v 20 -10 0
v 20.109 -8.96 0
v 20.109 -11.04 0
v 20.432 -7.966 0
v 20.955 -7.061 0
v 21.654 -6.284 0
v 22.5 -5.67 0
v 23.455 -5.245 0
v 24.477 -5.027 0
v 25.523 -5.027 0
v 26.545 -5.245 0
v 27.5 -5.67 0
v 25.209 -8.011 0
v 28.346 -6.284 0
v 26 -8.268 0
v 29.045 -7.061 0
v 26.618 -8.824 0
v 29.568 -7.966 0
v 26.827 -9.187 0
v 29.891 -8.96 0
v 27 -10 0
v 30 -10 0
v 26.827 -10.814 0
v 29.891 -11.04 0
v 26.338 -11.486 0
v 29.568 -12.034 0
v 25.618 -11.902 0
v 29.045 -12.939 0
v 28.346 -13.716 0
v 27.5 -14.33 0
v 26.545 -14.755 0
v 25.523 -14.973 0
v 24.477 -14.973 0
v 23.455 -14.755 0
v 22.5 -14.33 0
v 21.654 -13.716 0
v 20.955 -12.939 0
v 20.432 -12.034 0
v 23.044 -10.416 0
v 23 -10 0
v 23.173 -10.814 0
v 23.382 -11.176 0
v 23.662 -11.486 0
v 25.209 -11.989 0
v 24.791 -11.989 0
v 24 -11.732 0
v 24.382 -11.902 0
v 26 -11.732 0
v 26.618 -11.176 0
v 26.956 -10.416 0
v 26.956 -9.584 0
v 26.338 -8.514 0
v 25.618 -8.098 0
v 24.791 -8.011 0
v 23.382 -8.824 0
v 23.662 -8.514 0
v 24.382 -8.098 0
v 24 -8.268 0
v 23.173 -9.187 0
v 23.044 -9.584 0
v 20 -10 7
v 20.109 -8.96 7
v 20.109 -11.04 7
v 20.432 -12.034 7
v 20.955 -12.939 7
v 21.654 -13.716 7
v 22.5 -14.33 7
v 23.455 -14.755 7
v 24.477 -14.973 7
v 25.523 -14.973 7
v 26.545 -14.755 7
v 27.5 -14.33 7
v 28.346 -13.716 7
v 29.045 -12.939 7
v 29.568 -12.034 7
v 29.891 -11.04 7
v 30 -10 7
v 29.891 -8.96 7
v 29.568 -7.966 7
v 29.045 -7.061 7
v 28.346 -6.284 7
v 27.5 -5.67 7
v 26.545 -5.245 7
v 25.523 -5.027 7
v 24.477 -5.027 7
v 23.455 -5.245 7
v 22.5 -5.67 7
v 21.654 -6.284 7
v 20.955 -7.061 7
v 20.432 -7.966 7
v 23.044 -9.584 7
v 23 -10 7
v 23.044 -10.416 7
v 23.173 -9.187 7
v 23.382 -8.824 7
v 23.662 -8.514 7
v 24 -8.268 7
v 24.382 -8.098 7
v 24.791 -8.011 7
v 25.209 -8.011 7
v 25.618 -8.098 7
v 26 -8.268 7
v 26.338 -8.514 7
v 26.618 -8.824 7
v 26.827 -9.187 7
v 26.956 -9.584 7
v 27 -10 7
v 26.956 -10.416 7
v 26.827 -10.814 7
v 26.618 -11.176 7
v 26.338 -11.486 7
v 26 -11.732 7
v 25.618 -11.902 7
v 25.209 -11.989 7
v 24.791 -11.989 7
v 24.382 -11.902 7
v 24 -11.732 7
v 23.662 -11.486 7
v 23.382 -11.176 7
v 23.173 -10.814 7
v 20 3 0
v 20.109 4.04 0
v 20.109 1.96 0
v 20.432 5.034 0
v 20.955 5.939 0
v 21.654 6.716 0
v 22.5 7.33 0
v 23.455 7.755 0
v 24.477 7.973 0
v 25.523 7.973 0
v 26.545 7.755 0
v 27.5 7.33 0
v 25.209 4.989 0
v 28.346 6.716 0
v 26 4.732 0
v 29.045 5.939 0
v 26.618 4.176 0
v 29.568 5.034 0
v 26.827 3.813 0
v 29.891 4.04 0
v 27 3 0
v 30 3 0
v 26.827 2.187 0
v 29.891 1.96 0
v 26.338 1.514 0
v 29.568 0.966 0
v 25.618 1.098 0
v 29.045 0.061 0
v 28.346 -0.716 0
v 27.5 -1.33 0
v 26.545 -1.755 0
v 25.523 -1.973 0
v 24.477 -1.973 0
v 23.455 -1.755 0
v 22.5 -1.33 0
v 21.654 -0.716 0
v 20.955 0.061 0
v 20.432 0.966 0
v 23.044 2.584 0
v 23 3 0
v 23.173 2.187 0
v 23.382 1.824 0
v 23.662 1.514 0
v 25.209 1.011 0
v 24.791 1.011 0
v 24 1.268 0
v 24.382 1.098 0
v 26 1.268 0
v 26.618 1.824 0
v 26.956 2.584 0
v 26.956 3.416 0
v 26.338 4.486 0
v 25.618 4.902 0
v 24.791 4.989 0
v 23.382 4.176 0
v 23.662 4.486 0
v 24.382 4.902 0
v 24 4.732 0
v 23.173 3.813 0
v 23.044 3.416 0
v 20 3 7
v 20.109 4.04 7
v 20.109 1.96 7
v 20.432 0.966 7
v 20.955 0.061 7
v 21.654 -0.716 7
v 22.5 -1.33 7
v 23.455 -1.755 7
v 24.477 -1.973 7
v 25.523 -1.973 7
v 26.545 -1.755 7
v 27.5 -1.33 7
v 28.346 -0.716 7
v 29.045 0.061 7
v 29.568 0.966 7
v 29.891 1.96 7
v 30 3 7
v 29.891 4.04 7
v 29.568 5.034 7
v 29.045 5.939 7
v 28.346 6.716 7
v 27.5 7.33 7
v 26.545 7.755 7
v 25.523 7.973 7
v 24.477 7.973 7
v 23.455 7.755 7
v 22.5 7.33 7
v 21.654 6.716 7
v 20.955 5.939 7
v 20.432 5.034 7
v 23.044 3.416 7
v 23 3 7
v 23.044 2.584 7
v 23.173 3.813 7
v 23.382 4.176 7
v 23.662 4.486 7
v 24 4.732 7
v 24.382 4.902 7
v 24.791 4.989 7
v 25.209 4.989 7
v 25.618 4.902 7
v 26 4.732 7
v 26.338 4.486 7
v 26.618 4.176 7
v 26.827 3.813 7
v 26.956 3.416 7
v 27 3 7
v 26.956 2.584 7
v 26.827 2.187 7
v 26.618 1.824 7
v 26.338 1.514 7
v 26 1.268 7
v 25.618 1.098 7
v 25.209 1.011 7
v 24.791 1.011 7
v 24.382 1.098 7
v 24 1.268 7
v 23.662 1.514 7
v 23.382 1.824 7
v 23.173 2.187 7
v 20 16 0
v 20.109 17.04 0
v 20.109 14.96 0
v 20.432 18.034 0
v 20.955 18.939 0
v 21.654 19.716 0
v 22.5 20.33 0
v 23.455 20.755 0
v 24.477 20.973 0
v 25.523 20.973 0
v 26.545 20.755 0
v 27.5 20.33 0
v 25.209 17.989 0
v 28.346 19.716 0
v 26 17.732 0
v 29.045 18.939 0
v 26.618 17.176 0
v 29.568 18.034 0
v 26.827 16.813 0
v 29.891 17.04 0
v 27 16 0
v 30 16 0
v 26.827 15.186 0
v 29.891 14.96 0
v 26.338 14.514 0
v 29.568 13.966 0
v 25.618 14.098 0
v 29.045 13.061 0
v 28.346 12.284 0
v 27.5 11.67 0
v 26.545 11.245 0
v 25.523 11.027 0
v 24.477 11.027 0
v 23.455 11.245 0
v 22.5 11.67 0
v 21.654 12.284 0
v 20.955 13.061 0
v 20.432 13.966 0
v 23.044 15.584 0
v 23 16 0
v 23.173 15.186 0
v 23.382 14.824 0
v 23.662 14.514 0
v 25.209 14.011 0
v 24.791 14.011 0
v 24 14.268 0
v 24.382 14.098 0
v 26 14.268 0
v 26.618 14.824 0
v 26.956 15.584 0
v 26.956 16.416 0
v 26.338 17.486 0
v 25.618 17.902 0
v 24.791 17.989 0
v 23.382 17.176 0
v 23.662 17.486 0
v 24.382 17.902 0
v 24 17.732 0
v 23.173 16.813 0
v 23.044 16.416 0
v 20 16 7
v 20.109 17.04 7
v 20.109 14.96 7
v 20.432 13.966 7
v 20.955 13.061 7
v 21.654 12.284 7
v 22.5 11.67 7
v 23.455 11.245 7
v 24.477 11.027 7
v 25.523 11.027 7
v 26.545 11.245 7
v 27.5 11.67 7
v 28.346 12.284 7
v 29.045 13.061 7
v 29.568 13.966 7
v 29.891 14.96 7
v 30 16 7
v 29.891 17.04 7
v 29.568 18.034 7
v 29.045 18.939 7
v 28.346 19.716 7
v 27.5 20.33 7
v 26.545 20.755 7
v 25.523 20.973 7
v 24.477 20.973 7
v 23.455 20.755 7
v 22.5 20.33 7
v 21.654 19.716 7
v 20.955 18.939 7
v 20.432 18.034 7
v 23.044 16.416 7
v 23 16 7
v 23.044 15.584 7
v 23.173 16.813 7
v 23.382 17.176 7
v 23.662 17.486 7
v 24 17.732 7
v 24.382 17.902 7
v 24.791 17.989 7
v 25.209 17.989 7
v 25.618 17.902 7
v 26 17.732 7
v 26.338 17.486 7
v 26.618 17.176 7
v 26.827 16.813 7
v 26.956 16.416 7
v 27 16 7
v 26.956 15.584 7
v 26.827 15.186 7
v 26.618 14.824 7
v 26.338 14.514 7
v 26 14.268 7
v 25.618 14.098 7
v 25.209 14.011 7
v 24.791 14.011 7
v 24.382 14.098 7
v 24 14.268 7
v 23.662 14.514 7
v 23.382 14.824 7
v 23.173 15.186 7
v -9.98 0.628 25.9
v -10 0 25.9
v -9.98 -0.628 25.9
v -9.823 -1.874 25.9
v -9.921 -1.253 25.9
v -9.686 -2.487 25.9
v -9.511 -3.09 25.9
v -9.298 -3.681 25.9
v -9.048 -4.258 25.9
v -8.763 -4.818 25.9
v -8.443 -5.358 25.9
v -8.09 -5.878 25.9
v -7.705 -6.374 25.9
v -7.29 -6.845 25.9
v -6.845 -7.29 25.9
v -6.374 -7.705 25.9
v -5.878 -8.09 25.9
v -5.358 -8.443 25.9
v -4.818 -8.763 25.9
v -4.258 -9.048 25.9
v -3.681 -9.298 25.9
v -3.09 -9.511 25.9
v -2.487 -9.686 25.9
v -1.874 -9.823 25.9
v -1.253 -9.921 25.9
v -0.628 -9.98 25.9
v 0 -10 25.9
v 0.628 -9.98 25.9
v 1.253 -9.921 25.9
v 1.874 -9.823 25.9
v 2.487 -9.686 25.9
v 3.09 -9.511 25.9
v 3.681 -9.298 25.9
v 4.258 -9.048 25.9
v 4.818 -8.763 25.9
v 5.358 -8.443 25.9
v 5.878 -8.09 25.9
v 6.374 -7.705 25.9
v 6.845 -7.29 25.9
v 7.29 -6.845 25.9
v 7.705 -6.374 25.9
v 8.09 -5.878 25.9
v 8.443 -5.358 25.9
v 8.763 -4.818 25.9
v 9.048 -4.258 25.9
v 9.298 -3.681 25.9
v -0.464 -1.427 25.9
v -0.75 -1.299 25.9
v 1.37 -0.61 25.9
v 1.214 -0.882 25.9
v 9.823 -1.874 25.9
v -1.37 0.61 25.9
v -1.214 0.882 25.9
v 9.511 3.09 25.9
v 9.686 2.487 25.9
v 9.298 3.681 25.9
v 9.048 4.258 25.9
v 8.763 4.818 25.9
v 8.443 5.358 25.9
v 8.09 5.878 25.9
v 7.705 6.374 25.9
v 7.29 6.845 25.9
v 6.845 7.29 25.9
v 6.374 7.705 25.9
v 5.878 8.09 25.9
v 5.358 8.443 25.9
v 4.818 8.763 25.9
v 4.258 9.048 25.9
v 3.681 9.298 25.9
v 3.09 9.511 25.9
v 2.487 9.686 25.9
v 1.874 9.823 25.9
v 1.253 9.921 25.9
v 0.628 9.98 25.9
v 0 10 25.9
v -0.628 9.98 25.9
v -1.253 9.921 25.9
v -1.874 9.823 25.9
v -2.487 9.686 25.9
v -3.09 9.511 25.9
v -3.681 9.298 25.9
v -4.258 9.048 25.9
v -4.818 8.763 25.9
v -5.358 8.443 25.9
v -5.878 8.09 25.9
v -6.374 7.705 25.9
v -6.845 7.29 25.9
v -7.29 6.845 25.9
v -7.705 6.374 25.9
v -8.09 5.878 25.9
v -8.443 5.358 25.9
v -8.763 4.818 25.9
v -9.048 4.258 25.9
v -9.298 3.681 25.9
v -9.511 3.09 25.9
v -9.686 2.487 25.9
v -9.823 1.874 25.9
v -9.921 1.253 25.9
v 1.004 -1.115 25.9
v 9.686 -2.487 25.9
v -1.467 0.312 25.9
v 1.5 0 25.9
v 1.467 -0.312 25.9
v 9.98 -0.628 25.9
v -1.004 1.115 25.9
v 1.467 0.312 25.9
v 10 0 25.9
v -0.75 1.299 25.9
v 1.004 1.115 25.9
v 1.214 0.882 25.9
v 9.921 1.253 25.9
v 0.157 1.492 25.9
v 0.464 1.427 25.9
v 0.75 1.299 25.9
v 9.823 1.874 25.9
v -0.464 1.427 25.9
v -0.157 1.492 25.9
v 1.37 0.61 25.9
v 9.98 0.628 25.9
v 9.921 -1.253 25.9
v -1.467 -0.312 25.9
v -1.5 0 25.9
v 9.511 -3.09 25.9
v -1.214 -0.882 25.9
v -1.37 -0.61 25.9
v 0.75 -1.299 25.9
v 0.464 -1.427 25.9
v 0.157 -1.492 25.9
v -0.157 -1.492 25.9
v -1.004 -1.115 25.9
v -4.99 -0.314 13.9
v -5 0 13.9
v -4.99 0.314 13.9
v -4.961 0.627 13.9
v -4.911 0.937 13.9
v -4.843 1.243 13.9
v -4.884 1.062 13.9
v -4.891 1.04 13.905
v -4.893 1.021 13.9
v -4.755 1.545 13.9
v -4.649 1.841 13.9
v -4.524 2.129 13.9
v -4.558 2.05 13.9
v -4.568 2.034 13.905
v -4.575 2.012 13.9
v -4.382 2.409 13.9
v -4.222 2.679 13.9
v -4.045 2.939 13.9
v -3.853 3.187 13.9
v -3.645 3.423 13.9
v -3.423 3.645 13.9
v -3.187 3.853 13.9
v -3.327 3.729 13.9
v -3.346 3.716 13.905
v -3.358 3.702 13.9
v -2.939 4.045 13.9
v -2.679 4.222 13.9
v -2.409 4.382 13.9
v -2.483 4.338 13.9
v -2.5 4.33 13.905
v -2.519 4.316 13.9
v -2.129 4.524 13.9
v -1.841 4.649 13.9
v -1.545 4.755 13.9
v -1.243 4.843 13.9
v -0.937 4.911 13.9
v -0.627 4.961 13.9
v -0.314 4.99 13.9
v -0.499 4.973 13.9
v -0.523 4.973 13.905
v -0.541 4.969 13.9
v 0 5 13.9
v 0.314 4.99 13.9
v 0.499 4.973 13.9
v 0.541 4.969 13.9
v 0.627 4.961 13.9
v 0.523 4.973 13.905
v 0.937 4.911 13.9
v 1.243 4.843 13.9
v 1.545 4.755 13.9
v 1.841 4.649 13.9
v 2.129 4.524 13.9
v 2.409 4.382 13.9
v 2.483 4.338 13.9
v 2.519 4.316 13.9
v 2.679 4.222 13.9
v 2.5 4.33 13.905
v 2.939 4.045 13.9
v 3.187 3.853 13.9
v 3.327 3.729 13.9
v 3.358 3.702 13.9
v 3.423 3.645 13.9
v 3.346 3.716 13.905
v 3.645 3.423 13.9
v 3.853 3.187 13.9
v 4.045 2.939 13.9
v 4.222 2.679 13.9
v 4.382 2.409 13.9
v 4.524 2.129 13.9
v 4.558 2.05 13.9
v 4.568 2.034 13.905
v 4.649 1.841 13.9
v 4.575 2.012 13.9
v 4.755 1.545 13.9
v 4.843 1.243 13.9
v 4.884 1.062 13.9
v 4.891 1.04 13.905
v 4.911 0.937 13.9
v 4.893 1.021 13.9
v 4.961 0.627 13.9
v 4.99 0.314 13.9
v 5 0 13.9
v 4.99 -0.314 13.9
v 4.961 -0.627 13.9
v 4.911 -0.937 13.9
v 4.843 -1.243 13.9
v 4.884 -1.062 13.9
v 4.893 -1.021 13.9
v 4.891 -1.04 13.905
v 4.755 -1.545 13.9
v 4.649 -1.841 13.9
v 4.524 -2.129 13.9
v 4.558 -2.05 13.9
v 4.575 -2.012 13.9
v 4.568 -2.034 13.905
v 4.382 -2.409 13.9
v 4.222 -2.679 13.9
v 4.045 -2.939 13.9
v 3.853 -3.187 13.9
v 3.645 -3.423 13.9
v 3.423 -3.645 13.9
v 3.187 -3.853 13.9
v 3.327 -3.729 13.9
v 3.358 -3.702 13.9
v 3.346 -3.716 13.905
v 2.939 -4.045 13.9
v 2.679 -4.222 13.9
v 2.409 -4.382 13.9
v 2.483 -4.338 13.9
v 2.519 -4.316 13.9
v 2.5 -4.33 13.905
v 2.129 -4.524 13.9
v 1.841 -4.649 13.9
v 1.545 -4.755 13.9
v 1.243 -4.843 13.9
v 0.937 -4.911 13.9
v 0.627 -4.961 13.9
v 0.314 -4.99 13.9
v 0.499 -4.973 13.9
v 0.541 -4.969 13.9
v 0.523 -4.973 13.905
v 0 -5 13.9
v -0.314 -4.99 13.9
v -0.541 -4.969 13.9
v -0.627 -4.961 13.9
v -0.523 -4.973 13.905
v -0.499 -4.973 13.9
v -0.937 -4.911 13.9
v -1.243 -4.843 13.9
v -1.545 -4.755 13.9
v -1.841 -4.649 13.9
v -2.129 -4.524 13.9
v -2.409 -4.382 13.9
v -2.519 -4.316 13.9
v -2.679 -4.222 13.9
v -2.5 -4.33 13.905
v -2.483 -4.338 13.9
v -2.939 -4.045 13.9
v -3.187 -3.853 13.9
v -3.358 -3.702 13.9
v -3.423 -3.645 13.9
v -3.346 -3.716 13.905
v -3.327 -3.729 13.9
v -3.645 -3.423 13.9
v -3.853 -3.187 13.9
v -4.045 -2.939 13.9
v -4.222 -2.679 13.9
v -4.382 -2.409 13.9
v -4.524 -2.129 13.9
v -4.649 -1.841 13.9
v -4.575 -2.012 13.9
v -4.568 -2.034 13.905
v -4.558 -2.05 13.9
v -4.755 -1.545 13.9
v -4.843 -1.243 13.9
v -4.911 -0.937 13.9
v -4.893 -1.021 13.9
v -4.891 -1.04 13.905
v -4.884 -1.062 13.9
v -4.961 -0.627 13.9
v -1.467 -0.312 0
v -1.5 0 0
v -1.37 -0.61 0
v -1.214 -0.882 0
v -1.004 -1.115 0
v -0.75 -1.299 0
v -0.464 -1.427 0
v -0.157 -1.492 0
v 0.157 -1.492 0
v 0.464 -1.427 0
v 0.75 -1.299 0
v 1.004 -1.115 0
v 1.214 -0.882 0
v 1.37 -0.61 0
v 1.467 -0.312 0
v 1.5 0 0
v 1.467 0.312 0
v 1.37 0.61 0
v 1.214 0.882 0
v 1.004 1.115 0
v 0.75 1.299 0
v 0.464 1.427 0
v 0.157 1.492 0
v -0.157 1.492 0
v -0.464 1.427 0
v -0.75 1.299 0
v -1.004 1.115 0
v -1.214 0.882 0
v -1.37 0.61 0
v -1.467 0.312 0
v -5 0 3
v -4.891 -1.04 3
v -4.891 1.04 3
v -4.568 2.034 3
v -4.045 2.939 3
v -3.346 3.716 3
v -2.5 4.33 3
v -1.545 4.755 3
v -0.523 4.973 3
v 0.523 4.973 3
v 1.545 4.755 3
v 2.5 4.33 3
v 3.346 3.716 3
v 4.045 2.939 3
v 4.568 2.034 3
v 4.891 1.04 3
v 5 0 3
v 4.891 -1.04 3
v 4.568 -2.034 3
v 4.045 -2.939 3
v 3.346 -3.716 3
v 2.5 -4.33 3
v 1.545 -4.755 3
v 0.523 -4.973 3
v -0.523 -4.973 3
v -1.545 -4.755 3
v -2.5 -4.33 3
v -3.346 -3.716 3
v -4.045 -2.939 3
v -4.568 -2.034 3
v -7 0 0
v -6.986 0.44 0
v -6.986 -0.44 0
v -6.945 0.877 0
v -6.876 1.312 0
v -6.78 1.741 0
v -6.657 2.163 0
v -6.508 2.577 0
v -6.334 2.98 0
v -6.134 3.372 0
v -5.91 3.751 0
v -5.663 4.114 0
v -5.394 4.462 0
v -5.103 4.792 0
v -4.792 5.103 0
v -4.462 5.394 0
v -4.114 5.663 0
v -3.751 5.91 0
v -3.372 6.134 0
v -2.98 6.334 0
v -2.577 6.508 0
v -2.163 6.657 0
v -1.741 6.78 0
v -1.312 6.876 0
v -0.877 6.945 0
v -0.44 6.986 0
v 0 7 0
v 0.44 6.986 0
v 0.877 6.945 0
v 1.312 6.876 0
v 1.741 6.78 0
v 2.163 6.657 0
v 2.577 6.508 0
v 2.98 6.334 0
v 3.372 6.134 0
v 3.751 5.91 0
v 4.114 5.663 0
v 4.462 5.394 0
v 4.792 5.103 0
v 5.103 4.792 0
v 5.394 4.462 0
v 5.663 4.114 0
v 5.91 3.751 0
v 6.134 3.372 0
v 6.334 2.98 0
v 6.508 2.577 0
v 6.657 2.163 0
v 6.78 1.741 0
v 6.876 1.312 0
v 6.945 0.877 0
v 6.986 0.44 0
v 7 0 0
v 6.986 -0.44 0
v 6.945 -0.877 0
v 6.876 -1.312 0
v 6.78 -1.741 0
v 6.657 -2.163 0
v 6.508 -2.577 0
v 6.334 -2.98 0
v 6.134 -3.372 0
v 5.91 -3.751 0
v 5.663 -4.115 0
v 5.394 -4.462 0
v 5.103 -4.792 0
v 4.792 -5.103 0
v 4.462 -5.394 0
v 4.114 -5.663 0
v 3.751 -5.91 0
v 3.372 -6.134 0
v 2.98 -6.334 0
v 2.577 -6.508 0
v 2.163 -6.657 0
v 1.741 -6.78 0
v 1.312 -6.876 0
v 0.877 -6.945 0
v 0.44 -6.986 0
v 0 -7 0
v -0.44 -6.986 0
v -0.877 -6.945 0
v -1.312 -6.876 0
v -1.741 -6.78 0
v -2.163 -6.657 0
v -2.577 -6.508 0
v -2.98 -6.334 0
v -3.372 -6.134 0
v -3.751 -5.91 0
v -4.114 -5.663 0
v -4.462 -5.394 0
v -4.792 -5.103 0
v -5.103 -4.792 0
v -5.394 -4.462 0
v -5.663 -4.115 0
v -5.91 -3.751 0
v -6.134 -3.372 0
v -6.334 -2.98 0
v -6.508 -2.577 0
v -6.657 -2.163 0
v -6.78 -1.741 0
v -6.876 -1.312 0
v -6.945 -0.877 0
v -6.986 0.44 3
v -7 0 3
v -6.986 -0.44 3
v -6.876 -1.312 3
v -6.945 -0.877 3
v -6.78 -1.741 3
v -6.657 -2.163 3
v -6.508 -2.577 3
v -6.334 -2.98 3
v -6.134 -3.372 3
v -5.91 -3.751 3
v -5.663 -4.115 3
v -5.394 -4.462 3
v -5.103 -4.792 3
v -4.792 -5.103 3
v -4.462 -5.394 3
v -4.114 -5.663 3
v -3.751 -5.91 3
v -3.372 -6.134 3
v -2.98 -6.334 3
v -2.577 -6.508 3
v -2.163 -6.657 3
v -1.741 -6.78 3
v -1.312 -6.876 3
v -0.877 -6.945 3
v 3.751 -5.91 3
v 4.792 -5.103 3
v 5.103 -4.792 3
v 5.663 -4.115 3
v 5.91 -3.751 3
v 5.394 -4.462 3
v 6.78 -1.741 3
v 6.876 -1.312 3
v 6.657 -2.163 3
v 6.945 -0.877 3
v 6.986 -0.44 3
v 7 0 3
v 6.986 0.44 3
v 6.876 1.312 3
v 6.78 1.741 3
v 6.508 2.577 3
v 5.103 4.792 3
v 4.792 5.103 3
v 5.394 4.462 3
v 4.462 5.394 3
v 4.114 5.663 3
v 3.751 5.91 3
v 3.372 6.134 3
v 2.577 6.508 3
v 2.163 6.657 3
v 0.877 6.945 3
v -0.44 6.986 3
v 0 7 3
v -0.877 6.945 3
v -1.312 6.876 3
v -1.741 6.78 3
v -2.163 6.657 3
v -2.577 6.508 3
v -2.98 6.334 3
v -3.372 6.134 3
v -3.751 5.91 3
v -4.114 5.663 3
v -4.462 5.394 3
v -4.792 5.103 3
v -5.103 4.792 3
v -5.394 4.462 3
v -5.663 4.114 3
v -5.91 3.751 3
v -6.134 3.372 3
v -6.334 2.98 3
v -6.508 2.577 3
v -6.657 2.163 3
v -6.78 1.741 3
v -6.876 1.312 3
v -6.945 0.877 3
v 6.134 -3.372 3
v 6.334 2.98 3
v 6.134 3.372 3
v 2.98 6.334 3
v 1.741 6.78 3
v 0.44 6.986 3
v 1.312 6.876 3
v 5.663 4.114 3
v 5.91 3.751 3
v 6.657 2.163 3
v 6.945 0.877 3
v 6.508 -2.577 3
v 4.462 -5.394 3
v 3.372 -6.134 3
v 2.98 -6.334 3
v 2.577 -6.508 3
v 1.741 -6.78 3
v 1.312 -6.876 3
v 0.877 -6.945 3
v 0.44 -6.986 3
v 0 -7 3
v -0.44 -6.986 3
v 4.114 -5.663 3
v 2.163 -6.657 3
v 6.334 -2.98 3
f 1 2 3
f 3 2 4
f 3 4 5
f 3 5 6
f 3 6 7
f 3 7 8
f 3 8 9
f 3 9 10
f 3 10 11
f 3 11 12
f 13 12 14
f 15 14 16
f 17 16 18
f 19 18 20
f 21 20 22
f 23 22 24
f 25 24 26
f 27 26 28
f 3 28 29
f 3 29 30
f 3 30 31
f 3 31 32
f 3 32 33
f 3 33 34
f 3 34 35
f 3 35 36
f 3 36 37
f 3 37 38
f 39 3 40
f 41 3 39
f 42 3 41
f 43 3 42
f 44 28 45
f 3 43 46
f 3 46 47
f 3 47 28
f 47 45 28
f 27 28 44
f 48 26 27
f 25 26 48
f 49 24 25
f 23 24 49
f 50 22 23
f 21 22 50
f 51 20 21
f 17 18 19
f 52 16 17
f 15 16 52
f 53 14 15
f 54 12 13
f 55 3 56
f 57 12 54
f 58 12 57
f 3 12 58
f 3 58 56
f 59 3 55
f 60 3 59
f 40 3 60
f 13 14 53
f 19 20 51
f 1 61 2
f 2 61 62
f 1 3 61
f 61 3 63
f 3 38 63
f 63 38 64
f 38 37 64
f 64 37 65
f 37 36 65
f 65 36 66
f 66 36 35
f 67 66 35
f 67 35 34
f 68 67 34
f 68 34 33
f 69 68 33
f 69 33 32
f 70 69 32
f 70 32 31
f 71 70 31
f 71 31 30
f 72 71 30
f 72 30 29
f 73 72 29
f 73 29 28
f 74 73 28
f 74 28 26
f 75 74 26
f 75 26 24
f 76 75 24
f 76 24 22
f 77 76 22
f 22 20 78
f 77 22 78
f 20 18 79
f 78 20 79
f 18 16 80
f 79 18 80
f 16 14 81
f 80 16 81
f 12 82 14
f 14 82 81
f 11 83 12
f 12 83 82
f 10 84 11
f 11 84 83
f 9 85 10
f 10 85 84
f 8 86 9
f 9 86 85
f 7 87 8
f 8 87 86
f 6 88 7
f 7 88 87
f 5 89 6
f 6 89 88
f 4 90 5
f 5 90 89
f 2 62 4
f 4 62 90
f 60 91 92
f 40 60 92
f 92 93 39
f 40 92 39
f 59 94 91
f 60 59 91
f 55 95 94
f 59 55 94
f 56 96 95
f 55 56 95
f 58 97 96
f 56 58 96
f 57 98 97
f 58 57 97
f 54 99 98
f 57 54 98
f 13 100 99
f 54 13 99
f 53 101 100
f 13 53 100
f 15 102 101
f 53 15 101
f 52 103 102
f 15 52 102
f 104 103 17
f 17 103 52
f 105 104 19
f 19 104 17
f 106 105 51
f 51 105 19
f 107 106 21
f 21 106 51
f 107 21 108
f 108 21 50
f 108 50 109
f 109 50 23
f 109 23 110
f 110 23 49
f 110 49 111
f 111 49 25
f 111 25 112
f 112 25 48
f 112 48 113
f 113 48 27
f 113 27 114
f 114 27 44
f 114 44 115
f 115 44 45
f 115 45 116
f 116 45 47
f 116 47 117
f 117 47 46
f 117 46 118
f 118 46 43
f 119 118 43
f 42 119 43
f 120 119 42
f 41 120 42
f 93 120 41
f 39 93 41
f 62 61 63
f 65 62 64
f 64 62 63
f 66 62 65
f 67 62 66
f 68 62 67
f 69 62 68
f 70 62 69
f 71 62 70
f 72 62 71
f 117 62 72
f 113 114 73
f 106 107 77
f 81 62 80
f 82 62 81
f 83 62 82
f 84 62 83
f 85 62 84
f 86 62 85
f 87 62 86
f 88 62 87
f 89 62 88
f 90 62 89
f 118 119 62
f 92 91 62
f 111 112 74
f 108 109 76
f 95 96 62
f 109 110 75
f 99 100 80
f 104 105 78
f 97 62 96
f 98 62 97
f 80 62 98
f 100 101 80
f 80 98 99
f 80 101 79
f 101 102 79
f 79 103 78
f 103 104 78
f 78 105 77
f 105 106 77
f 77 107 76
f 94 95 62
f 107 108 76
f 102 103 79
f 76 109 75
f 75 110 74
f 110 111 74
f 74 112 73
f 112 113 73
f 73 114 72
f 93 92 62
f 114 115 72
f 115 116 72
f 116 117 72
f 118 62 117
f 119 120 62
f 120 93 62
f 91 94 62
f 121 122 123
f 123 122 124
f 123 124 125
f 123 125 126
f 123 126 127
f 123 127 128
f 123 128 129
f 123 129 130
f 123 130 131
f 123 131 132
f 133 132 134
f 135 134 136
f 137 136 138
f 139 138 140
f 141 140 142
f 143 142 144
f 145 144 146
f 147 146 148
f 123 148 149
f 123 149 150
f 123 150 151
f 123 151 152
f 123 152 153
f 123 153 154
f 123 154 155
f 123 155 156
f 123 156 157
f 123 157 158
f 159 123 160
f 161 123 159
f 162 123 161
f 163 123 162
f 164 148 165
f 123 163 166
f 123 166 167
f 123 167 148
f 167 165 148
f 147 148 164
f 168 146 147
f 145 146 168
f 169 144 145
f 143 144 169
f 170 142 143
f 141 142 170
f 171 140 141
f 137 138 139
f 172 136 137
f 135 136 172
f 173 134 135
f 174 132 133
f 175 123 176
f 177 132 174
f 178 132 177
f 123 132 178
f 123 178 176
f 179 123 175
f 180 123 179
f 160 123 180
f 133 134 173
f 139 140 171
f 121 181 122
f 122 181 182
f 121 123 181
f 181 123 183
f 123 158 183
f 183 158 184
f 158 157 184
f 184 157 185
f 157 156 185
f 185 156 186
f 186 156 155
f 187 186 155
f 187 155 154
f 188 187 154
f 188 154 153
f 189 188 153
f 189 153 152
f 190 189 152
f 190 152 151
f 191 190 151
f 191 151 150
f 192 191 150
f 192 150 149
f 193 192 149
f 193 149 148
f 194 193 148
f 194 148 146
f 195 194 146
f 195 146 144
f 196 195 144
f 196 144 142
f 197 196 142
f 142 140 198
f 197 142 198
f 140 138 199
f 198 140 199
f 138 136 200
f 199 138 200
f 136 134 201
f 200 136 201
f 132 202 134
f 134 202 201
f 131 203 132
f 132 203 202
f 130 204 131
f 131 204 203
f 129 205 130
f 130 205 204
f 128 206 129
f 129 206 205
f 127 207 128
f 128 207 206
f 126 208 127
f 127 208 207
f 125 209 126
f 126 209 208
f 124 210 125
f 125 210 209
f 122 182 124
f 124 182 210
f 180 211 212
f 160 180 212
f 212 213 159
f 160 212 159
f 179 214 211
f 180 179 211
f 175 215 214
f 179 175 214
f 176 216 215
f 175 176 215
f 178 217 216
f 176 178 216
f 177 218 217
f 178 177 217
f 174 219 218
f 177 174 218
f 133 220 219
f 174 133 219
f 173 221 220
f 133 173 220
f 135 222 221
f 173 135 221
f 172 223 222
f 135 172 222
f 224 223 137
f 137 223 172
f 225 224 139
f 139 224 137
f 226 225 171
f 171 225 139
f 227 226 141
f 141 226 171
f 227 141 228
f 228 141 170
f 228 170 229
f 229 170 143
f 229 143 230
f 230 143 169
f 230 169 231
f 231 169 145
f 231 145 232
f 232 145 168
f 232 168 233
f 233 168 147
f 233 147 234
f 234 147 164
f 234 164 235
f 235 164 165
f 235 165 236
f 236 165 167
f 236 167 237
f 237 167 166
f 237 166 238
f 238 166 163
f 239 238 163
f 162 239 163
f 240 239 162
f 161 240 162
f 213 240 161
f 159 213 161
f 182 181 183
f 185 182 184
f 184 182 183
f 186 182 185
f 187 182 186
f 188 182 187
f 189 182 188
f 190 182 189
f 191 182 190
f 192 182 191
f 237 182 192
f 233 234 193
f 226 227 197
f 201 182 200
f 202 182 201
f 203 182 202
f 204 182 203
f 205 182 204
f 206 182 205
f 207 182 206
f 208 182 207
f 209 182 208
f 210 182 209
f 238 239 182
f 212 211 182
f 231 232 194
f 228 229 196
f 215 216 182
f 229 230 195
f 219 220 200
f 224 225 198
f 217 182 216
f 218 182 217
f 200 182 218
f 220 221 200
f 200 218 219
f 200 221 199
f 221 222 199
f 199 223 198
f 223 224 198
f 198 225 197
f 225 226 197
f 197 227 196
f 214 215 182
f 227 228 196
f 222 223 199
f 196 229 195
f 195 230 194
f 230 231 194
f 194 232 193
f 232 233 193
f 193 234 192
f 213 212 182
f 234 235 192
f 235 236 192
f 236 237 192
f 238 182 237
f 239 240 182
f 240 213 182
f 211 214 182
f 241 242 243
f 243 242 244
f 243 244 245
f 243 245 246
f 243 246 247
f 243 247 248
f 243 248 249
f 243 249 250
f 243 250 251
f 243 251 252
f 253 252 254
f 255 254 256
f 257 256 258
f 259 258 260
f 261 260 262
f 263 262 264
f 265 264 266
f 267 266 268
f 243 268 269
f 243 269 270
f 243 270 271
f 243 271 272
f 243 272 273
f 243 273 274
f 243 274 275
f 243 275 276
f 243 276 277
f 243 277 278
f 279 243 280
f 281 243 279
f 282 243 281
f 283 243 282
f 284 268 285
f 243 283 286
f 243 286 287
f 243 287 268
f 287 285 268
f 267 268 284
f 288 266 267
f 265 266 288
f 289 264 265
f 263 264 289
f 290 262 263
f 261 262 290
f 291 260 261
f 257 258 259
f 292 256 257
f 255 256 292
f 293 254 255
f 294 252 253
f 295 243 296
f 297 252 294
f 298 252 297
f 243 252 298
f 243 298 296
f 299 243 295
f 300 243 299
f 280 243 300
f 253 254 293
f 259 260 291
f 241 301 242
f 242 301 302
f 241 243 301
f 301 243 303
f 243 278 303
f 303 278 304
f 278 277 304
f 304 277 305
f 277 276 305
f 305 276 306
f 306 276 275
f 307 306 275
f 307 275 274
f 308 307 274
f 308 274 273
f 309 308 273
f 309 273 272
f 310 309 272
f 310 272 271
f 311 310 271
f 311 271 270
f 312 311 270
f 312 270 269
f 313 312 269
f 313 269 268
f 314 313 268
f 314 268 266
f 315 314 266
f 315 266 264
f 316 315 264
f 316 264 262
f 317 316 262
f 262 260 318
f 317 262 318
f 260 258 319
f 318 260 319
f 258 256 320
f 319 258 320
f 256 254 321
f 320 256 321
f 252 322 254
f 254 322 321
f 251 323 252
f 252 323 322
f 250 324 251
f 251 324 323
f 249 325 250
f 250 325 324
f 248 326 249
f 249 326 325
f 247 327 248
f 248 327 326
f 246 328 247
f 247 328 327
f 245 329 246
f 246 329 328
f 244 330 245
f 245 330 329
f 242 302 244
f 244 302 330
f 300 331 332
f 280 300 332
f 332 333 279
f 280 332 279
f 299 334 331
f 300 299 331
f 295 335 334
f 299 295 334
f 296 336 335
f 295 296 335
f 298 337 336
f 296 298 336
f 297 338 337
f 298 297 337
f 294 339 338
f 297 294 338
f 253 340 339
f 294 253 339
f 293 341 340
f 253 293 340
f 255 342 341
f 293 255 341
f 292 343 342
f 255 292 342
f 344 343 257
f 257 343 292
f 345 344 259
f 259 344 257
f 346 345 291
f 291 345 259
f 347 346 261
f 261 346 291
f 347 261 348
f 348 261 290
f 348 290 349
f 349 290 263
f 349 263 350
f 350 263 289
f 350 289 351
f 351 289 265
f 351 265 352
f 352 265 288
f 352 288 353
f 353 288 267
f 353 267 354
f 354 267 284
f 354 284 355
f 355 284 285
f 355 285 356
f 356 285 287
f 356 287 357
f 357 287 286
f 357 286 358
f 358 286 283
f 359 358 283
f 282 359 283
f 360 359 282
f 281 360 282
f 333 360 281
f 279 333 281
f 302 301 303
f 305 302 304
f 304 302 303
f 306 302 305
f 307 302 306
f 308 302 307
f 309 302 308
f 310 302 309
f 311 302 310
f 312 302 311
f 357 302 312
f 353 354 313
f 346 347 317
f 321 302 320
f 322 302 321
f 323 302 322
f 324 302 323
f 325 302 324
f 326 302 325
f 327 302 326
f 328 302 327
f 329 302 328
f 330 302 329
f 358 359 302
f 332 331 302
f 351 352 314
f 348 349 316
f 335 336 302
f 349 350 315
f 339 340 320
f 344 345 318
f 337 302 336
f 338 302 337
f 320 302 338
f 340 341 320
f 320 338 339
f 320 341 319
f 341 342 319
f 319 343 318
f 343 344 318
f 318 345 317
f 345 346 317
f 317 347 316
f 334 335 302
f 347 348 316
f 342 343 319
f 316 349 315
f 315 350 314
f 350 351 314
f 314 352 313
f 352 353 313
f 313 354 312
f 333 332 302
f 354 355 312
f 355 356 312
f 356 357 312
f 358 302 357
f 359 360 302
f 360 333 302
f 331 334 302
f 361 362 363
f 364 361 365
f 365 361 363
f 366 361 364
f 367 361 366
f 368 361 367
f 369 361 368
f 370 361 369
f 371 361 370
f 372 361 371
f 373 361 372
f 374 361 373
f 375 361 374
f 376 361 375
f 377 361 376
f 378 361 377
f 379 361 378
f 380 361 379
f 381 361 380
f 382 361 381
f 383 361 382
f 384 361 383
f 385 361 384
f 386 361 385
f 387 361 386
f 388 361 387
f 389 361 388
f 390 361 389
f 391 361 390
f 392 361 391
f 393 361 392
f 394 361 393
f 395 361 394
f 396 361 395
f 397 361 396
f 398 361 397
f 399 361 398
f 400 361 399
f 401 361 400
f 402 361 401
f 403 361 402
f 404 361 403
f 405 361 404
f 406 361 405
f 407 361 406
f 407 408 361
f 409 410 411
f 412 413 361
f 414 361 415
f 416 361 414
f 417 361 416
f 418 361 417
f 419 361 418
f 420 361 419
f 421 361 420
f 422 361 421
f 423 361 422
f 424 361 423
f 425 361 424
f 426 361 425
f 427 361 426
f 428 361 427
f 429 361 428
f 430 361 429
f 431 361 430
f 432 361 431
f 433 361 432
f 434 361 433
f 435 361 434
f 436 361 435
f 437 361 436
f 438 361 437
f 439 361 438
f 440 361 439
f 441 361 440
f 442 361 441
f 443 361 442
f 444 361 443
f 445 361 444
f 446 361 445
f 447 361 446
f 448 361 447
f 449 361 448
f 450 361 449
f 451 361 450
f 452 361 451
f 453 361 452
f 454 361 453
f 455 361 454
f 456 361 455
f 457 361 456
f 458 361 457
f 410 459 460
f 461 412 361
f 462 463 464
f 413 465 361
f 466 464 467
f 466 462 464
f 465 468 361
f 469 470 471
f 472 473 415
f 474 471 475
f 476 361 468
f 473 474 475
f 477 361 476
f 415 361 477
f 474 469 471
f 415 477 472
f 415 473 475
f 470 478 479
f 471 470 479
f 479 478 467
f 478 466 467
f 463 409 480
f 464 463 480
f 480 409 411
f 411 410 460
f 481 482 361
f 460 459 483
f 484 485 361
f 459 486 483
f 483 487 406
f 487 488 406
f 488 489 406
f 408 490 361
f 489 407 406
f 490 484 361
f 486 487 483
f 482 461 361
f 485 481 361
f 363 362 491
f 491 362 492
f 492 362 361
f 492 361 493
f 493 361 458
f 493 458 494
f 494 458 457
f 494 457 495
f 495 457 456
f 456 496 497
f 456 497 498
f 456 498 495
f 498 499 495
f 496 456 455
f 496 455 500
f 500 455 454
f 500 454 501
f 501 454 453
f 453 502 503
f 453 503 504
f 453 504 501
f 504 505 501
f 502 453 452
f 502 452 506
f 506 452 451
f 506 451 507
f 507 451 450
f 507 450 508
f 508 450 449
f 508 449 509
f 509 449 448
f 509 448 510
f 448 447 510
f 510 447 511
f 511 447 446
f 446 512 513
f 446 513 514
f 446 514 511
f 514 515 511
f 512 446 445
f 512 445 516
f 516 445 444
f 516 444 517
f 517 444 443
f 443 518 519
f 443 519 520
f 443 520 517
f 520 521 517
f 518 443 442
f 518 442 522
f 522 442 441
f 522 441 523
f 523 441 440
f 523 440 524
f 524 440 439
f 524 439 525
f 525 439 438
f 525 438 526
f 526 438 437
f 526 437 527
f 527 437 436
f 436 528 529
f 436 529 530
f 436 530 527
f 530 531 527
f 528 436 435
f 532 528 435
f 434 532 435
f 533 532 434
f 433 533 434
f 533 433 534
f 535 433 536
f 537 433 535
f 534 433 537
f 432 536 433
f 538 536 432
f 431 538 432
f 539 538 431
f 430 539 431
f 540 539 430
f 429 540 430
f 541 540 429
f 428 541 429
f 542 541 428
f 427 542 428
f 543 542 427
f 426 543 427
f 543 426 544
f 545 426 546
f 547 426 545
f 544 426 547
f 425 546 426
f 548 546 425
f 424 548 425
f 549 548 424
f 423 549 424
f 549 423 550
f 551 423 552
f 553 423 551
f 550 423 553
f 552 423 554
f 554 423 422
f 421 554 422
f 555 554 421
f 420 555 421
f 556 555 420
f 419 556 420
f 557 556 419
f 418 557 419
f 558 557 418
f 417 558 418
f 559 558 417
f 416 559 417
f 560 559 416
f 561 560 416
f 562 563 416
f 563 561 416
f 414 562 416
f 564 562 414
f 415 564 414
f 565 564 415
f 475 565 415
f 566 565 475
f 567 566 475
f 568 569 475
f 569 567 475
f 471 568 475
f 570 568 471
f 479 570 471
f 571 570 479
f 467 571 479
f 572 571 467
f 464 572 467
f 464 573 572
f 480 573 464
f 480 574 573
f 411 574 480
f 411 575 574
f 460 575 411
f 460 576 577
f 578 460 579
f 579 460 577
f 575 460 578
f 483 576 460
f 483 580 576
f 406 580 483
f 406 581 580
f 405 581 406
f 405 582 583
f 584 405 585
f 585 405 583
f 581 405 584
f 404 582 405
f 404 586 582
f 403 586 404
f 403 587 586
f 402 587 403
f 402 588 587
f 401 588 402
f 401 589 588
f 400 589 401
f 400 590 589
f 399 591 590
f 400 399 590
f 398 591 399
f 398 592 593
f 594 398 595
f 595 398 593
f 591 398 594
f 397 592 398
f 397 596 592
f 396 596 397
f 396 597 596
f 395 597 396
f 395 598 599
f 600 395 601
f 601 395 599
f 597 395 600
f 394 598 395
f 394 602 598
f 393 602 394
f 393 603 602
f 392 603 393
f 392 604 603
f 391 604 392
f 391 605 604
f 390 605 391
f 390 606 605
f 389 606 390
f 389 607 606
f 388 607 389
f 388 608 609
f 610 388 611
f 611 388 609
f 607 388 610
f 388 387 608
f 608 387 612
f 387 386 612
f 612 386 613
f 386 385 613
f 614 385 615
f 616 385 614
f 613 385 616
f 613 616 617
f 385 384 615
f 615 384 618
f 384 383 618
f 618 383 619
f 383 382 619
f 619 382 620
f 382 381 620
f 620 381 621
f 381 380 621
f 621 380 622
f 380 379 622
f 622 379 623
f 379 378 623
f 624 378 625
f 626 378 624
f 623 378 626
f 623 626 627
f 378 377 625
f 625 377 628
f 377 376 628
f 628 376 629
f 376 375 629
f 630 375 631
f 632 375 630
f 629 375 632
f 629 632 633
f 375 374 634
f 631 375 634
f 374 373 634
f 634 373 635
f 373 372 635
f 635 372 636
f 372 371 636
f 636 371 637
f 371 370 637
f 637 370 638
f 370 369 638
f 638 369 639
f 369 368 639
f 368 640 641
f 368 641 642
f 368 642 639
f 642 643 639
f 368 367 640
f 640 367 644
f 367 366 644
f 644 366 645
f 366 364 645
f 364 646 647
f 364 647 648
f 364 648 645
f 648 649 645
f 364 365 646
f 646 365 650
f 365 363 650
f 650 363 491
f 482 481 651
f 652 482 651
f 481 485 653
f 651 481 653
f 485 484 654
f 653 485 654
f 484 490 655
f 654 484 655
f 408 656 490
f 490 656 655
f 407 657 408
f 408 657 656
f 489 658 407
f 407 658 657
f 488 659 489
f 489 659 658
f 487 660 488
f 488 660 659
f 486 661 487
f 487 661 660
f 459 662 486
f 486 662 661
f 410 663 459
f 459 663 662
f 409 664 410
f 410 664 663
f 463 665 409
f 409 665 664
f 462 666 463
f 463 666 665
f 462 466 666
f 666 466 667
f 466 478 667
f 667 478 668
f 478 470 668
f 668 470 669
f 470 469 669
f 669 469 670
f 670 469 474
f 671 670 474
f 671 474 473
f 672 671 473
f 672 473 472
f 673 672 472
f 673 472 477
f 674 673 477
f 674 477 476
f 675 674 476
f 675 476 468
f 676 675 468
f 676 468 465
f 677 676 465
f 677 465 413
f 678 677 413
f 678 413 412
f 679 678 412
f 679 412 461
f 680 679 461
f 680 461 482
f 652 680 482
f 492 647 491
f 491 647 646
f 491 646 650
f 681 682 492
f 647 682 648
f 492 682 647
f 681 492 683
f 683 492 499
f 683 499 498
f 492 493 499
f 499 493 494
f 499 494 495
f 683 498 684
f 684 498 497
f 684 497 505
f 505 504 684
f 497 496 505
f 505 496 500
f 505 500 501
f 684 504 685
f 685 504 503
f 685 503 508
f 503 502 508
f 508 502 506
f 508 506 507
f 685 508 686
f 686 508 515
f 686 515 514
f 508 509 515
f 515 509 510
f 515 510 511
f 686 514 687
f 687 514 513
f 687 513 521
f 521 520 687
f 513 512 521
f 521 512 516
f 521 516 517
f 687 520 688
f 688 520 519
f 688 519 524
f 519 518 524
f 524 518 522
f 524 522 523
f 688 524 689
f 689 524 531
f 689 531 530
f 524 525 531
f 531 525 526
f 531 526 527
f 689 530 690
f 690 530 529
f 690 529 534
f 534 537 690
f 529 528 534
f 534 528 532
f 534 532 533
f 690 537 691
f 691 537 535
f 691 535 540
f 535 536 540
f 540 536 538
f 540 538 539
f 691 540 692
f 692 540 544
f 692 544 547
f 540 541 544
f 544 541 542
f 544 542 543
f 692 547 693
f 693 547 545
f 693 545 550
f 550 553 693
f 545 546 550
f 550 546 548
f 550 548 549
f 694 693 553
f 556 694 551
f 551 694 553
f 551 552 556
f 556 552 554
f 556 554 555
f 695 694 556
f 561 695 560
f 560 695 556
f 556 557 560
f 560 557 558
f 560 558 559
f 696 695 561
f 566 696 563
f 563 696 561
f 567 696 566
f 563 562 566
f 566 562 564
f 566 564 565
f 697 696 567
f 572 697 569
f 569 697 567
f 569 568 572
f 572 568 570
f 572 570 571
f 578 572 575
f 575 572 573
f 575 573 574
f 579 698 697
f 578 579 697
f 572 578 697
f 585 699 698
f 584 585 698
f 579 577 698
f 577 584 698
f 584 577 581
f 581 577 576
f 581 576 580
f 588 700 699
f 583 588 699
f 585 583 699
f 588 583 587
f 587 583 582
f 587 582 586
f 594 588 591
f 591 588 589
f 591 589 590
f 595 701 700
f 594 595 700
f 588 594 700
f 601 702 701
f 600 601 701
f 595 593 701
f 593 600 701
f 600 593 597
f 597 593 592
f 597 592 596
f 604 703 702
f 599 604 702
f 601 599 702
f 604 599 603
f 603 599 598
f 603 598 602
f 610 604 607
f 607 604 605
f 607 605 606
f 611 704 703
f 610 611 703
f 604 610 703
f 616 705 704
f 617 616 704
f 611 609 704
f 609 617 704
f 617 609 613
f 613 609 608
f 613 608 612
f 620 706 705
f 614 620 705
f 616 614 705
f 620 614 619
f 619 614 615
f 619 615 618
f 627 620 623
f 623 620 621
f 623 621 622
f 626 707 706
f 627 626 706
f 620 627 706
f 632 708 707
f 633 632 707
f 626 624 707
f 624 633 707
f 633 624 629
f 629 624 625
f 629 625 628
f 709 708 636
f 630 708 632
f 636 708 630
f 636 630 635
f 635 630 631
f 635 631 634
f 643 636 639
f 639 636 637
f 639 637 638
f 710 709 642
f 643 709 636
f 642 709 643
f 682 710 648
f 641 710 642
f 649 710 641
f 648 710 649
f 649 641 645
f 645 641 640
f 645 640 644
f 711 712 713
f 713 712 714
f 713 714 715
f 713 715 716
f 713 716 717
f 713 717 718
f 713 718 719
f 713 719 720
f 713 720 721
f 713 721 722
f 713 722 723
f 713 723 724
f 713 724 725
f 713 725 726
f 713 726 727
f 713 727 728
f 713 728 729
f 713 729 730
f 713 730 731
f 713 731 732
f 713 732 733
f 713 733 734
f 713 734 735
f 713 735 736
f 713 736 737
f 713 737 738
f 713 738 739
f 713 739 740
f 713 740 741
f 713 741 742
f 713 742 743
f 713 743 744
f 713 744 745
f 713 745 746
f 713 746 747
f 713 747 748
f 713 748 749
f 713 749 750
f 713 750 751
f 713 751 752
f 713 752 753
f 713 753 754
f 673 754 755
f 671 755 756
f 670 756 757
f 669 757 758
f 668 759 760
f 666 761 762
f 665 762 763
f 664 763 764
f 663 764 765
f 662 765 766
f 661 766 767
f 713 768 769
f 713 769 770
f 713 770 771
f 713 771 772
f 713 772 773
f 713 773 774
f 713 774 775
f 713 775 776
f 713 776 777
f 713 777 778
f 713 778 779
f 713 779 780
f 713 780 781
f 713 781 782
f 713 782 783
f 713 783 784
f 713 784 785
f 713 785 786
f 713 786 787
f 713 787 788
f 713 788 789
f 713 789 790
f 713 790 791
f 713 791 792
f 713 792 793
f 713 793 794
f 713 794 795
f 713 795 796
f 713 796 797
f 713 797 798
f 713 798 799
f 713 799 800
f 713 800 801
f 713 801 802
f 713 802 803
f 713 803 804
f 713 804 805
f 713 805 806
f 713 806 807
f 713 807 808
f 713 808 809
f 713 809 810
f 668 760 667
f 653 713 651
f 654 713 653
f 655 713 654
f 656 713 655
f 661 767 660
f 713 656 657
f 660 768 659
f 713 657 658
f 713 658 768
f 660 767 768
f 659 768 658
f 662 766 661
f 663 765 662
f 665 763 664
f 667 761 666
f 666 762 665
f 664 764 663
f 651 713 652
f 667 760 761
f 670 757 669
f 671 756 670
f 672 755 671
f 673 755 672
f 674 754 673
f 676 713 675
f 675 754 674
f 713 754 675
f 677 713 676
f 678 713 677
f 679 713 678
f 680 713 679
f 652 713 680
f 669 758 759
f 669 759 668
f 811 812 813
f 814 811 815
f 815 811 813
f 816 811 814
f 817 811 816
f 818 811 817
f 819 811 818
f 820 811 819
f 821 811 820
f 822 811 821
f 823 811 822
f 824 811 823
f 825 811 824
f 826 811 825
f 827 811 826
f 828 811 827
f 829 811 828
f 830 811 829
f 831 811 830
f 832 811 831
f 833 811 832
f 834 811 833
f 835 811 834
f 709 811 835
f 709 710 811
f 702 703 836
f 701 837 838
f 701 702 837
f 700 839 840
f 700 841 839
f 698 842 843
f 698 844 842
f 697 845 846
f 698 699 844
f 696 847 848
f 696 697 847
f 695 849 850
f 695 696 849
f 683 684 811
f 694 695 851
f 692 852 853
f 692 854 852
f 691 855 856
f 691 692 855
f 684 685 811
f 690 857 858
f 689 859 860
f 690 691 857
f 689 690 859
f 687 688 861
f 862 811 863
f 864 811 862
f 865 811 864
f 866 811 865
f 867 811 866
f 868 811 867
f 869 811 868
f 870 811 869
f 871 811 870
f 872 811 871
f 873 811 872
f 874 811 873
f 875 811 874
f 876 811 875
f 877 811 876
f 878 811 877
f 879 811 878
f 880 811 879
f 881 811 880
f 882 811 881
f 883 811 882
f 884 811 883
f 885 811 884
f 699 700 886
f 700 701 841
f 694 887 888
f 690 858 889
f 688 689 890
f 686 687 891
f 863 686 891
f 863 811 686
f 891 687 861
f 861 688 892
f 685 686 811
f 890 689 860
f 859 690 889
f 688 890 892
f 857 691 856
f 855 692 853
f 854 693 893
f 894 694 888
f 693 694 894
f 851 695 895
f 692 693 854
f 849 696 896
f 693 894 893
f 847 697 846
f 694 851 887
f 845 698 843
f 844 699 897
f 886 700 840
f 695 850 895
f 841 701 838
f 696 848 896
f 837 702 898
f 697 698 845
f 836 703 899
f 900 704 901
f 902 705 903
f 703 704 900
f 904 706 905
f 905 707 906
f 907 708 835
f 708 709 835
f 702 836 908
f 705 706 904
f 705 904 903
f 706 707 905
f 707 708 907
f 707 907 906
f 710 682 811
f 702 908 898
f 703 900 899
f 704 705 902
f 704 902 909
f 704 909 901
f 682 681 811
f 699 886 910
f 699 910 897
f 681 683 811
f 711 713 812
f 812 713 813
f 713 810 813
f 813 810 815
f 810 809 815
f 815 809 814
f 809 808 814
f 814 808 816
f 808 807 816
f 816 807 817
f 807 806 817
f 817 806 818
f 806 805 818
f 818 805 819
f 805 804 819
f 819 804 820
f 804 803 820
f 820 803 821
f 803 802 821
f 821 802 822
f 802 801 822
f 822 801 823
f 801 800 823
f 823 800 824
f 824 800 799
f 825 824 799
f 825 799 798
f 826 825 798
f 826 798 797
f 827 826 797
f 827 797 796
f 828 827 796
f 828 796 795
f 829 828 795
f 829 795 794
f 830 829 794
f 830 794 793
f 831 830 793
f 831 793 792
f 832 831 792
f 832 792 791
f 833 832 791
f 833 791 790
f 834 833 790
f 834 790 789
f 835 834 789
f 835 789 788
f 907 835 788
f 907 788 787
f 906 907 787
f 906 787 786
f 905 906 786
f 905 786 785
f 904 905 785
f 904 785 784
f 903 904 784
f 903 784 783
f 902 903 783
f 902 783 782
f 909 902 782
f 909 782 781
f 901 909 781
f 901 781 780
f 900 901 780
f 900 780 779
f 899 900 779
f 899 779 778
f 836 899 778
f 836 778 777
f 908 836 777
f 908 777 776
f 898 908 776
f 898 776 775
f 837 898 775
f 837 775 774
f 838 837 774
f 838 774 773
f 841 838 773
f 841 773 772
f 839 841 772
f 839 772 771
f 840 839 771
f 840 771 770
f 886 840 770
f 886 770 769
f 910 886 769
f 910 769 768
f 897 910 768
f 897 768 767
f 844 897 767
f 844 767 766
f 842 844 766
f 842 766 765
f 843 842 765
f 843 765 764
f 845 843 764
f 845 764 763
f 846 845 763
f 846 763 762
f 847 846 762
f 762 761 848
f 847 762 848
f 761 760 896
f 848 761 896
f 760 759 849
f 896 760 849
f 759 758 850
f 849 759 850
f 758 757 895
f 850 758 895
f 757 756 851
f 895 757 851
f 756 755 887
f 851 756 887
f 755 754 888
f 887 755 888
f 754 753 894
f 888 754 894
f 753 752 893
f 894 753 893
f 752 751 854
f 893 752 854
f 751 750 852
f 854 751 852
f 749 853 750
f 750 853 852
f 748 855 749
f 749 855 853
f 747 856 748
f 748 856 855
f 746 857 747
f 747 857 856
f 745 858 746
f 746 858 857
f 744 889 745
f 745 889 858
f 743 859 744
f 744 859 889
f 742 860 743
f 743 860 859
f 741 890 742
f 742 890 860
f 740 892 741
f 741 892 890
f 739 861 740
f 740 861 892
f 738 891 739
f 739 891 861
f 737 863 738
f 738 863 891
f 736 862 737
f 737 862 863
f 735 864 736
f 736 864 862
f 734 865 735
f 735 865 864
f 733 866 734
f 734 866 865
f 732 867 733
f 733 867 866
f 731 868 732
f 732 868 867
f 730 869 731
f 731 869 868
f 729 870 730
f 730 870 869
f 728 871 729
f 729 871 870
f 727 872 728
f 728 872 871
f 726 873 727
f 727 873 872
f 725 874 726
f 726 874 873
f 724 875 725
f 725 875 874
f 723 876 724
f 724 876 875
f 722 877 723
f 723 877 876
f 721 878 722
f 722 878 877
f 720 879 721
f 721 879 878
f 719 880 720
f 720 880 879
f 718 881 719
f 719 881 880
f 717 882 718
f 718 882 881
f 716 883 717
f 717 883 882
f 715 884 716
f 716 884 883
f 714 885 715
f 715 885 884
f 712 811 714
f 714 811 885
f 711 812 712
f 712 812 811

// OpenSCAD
union() {
  translate(v=[25.000, -10.000, 0.000]) {
  rotate([-180.000,-180.000,-180.000]){
    union() {
      difference() {
        cylinder(h=7.000, r1=5.000, r2=5.000, $fn=30, center=false);
        translate(v=[0.000, 0.000, -1.000]) {
        rotate([-180.000,-180.000,-180.000]){
          cylinder(h=12.000, r1=2.000, r2=2.000, $fn=30, center=false);
        } // End rotate
        } // End translate
      } // End difference
      translate(v=[0.000, 13.000, 0.000]) {
      rotate([-180.000,-180.000,-180.000]){
        difference() {
          cylinder(h=7.000, r1=5.000, r2=5.000, $fn=30, center=false);
          translate(v=[0.000, 0.000, -1.000]) {
          rotate([-180.000,-180.000,-180.000]){
            cylinder(h=12.000, r1=2.000, r2=2.000, $fn=30, center=false);
          } // End rotate
          } // End translate
        } // End difference
      } // End rotate
      } // End translate
      translate(v=[0.000, 26.000, 0.000]) {
      rotate([-180.000,-180.000,-180.000]){
        difference() {
          cylinder(h=7.000, r1=5.000, r2=5.000, $fn=30, center=false);
          translate(v=[0.000, 0.000, -1.000]) {
          rotate([-180.000,-180.000,-180.000]){
            cylinder(h=12.000, r1=2.000, r2=2.000, $fn=30, center=false);
          } // End rotate
          } // End translate
        } // End difference
      } // End rotate
      } // End translate
    } // End union
  } // End rotate
  } // End translate
  difference() {
    union() {
      cylinder(h=3.000, r1=7.000, r2=7.000, $fn=100, center=false);
      cylinder(h=14.000, r1=5.000, r2=5.000, $fn=30, center=false);
      translate(v=[0.000, 0.000, 13.900]) {
      rotate([-180.000,-180.000,-180.000]){
        cylinder(h=12.000, r1=5.000, r2=10.000, $fn=100, center=false);
      } // End rotate
      } // End translate
    } // End union
    translate(v=[0.000, 0.000, -1.000]) {
    rotate([-180.000,-180.000,-180.000]){
      cylinder(h=30.000, r1=1.500, r2=1.500, $fn=30, center=false);
    } // End rotate
    } // End translate
  } // End difference
} // End union
